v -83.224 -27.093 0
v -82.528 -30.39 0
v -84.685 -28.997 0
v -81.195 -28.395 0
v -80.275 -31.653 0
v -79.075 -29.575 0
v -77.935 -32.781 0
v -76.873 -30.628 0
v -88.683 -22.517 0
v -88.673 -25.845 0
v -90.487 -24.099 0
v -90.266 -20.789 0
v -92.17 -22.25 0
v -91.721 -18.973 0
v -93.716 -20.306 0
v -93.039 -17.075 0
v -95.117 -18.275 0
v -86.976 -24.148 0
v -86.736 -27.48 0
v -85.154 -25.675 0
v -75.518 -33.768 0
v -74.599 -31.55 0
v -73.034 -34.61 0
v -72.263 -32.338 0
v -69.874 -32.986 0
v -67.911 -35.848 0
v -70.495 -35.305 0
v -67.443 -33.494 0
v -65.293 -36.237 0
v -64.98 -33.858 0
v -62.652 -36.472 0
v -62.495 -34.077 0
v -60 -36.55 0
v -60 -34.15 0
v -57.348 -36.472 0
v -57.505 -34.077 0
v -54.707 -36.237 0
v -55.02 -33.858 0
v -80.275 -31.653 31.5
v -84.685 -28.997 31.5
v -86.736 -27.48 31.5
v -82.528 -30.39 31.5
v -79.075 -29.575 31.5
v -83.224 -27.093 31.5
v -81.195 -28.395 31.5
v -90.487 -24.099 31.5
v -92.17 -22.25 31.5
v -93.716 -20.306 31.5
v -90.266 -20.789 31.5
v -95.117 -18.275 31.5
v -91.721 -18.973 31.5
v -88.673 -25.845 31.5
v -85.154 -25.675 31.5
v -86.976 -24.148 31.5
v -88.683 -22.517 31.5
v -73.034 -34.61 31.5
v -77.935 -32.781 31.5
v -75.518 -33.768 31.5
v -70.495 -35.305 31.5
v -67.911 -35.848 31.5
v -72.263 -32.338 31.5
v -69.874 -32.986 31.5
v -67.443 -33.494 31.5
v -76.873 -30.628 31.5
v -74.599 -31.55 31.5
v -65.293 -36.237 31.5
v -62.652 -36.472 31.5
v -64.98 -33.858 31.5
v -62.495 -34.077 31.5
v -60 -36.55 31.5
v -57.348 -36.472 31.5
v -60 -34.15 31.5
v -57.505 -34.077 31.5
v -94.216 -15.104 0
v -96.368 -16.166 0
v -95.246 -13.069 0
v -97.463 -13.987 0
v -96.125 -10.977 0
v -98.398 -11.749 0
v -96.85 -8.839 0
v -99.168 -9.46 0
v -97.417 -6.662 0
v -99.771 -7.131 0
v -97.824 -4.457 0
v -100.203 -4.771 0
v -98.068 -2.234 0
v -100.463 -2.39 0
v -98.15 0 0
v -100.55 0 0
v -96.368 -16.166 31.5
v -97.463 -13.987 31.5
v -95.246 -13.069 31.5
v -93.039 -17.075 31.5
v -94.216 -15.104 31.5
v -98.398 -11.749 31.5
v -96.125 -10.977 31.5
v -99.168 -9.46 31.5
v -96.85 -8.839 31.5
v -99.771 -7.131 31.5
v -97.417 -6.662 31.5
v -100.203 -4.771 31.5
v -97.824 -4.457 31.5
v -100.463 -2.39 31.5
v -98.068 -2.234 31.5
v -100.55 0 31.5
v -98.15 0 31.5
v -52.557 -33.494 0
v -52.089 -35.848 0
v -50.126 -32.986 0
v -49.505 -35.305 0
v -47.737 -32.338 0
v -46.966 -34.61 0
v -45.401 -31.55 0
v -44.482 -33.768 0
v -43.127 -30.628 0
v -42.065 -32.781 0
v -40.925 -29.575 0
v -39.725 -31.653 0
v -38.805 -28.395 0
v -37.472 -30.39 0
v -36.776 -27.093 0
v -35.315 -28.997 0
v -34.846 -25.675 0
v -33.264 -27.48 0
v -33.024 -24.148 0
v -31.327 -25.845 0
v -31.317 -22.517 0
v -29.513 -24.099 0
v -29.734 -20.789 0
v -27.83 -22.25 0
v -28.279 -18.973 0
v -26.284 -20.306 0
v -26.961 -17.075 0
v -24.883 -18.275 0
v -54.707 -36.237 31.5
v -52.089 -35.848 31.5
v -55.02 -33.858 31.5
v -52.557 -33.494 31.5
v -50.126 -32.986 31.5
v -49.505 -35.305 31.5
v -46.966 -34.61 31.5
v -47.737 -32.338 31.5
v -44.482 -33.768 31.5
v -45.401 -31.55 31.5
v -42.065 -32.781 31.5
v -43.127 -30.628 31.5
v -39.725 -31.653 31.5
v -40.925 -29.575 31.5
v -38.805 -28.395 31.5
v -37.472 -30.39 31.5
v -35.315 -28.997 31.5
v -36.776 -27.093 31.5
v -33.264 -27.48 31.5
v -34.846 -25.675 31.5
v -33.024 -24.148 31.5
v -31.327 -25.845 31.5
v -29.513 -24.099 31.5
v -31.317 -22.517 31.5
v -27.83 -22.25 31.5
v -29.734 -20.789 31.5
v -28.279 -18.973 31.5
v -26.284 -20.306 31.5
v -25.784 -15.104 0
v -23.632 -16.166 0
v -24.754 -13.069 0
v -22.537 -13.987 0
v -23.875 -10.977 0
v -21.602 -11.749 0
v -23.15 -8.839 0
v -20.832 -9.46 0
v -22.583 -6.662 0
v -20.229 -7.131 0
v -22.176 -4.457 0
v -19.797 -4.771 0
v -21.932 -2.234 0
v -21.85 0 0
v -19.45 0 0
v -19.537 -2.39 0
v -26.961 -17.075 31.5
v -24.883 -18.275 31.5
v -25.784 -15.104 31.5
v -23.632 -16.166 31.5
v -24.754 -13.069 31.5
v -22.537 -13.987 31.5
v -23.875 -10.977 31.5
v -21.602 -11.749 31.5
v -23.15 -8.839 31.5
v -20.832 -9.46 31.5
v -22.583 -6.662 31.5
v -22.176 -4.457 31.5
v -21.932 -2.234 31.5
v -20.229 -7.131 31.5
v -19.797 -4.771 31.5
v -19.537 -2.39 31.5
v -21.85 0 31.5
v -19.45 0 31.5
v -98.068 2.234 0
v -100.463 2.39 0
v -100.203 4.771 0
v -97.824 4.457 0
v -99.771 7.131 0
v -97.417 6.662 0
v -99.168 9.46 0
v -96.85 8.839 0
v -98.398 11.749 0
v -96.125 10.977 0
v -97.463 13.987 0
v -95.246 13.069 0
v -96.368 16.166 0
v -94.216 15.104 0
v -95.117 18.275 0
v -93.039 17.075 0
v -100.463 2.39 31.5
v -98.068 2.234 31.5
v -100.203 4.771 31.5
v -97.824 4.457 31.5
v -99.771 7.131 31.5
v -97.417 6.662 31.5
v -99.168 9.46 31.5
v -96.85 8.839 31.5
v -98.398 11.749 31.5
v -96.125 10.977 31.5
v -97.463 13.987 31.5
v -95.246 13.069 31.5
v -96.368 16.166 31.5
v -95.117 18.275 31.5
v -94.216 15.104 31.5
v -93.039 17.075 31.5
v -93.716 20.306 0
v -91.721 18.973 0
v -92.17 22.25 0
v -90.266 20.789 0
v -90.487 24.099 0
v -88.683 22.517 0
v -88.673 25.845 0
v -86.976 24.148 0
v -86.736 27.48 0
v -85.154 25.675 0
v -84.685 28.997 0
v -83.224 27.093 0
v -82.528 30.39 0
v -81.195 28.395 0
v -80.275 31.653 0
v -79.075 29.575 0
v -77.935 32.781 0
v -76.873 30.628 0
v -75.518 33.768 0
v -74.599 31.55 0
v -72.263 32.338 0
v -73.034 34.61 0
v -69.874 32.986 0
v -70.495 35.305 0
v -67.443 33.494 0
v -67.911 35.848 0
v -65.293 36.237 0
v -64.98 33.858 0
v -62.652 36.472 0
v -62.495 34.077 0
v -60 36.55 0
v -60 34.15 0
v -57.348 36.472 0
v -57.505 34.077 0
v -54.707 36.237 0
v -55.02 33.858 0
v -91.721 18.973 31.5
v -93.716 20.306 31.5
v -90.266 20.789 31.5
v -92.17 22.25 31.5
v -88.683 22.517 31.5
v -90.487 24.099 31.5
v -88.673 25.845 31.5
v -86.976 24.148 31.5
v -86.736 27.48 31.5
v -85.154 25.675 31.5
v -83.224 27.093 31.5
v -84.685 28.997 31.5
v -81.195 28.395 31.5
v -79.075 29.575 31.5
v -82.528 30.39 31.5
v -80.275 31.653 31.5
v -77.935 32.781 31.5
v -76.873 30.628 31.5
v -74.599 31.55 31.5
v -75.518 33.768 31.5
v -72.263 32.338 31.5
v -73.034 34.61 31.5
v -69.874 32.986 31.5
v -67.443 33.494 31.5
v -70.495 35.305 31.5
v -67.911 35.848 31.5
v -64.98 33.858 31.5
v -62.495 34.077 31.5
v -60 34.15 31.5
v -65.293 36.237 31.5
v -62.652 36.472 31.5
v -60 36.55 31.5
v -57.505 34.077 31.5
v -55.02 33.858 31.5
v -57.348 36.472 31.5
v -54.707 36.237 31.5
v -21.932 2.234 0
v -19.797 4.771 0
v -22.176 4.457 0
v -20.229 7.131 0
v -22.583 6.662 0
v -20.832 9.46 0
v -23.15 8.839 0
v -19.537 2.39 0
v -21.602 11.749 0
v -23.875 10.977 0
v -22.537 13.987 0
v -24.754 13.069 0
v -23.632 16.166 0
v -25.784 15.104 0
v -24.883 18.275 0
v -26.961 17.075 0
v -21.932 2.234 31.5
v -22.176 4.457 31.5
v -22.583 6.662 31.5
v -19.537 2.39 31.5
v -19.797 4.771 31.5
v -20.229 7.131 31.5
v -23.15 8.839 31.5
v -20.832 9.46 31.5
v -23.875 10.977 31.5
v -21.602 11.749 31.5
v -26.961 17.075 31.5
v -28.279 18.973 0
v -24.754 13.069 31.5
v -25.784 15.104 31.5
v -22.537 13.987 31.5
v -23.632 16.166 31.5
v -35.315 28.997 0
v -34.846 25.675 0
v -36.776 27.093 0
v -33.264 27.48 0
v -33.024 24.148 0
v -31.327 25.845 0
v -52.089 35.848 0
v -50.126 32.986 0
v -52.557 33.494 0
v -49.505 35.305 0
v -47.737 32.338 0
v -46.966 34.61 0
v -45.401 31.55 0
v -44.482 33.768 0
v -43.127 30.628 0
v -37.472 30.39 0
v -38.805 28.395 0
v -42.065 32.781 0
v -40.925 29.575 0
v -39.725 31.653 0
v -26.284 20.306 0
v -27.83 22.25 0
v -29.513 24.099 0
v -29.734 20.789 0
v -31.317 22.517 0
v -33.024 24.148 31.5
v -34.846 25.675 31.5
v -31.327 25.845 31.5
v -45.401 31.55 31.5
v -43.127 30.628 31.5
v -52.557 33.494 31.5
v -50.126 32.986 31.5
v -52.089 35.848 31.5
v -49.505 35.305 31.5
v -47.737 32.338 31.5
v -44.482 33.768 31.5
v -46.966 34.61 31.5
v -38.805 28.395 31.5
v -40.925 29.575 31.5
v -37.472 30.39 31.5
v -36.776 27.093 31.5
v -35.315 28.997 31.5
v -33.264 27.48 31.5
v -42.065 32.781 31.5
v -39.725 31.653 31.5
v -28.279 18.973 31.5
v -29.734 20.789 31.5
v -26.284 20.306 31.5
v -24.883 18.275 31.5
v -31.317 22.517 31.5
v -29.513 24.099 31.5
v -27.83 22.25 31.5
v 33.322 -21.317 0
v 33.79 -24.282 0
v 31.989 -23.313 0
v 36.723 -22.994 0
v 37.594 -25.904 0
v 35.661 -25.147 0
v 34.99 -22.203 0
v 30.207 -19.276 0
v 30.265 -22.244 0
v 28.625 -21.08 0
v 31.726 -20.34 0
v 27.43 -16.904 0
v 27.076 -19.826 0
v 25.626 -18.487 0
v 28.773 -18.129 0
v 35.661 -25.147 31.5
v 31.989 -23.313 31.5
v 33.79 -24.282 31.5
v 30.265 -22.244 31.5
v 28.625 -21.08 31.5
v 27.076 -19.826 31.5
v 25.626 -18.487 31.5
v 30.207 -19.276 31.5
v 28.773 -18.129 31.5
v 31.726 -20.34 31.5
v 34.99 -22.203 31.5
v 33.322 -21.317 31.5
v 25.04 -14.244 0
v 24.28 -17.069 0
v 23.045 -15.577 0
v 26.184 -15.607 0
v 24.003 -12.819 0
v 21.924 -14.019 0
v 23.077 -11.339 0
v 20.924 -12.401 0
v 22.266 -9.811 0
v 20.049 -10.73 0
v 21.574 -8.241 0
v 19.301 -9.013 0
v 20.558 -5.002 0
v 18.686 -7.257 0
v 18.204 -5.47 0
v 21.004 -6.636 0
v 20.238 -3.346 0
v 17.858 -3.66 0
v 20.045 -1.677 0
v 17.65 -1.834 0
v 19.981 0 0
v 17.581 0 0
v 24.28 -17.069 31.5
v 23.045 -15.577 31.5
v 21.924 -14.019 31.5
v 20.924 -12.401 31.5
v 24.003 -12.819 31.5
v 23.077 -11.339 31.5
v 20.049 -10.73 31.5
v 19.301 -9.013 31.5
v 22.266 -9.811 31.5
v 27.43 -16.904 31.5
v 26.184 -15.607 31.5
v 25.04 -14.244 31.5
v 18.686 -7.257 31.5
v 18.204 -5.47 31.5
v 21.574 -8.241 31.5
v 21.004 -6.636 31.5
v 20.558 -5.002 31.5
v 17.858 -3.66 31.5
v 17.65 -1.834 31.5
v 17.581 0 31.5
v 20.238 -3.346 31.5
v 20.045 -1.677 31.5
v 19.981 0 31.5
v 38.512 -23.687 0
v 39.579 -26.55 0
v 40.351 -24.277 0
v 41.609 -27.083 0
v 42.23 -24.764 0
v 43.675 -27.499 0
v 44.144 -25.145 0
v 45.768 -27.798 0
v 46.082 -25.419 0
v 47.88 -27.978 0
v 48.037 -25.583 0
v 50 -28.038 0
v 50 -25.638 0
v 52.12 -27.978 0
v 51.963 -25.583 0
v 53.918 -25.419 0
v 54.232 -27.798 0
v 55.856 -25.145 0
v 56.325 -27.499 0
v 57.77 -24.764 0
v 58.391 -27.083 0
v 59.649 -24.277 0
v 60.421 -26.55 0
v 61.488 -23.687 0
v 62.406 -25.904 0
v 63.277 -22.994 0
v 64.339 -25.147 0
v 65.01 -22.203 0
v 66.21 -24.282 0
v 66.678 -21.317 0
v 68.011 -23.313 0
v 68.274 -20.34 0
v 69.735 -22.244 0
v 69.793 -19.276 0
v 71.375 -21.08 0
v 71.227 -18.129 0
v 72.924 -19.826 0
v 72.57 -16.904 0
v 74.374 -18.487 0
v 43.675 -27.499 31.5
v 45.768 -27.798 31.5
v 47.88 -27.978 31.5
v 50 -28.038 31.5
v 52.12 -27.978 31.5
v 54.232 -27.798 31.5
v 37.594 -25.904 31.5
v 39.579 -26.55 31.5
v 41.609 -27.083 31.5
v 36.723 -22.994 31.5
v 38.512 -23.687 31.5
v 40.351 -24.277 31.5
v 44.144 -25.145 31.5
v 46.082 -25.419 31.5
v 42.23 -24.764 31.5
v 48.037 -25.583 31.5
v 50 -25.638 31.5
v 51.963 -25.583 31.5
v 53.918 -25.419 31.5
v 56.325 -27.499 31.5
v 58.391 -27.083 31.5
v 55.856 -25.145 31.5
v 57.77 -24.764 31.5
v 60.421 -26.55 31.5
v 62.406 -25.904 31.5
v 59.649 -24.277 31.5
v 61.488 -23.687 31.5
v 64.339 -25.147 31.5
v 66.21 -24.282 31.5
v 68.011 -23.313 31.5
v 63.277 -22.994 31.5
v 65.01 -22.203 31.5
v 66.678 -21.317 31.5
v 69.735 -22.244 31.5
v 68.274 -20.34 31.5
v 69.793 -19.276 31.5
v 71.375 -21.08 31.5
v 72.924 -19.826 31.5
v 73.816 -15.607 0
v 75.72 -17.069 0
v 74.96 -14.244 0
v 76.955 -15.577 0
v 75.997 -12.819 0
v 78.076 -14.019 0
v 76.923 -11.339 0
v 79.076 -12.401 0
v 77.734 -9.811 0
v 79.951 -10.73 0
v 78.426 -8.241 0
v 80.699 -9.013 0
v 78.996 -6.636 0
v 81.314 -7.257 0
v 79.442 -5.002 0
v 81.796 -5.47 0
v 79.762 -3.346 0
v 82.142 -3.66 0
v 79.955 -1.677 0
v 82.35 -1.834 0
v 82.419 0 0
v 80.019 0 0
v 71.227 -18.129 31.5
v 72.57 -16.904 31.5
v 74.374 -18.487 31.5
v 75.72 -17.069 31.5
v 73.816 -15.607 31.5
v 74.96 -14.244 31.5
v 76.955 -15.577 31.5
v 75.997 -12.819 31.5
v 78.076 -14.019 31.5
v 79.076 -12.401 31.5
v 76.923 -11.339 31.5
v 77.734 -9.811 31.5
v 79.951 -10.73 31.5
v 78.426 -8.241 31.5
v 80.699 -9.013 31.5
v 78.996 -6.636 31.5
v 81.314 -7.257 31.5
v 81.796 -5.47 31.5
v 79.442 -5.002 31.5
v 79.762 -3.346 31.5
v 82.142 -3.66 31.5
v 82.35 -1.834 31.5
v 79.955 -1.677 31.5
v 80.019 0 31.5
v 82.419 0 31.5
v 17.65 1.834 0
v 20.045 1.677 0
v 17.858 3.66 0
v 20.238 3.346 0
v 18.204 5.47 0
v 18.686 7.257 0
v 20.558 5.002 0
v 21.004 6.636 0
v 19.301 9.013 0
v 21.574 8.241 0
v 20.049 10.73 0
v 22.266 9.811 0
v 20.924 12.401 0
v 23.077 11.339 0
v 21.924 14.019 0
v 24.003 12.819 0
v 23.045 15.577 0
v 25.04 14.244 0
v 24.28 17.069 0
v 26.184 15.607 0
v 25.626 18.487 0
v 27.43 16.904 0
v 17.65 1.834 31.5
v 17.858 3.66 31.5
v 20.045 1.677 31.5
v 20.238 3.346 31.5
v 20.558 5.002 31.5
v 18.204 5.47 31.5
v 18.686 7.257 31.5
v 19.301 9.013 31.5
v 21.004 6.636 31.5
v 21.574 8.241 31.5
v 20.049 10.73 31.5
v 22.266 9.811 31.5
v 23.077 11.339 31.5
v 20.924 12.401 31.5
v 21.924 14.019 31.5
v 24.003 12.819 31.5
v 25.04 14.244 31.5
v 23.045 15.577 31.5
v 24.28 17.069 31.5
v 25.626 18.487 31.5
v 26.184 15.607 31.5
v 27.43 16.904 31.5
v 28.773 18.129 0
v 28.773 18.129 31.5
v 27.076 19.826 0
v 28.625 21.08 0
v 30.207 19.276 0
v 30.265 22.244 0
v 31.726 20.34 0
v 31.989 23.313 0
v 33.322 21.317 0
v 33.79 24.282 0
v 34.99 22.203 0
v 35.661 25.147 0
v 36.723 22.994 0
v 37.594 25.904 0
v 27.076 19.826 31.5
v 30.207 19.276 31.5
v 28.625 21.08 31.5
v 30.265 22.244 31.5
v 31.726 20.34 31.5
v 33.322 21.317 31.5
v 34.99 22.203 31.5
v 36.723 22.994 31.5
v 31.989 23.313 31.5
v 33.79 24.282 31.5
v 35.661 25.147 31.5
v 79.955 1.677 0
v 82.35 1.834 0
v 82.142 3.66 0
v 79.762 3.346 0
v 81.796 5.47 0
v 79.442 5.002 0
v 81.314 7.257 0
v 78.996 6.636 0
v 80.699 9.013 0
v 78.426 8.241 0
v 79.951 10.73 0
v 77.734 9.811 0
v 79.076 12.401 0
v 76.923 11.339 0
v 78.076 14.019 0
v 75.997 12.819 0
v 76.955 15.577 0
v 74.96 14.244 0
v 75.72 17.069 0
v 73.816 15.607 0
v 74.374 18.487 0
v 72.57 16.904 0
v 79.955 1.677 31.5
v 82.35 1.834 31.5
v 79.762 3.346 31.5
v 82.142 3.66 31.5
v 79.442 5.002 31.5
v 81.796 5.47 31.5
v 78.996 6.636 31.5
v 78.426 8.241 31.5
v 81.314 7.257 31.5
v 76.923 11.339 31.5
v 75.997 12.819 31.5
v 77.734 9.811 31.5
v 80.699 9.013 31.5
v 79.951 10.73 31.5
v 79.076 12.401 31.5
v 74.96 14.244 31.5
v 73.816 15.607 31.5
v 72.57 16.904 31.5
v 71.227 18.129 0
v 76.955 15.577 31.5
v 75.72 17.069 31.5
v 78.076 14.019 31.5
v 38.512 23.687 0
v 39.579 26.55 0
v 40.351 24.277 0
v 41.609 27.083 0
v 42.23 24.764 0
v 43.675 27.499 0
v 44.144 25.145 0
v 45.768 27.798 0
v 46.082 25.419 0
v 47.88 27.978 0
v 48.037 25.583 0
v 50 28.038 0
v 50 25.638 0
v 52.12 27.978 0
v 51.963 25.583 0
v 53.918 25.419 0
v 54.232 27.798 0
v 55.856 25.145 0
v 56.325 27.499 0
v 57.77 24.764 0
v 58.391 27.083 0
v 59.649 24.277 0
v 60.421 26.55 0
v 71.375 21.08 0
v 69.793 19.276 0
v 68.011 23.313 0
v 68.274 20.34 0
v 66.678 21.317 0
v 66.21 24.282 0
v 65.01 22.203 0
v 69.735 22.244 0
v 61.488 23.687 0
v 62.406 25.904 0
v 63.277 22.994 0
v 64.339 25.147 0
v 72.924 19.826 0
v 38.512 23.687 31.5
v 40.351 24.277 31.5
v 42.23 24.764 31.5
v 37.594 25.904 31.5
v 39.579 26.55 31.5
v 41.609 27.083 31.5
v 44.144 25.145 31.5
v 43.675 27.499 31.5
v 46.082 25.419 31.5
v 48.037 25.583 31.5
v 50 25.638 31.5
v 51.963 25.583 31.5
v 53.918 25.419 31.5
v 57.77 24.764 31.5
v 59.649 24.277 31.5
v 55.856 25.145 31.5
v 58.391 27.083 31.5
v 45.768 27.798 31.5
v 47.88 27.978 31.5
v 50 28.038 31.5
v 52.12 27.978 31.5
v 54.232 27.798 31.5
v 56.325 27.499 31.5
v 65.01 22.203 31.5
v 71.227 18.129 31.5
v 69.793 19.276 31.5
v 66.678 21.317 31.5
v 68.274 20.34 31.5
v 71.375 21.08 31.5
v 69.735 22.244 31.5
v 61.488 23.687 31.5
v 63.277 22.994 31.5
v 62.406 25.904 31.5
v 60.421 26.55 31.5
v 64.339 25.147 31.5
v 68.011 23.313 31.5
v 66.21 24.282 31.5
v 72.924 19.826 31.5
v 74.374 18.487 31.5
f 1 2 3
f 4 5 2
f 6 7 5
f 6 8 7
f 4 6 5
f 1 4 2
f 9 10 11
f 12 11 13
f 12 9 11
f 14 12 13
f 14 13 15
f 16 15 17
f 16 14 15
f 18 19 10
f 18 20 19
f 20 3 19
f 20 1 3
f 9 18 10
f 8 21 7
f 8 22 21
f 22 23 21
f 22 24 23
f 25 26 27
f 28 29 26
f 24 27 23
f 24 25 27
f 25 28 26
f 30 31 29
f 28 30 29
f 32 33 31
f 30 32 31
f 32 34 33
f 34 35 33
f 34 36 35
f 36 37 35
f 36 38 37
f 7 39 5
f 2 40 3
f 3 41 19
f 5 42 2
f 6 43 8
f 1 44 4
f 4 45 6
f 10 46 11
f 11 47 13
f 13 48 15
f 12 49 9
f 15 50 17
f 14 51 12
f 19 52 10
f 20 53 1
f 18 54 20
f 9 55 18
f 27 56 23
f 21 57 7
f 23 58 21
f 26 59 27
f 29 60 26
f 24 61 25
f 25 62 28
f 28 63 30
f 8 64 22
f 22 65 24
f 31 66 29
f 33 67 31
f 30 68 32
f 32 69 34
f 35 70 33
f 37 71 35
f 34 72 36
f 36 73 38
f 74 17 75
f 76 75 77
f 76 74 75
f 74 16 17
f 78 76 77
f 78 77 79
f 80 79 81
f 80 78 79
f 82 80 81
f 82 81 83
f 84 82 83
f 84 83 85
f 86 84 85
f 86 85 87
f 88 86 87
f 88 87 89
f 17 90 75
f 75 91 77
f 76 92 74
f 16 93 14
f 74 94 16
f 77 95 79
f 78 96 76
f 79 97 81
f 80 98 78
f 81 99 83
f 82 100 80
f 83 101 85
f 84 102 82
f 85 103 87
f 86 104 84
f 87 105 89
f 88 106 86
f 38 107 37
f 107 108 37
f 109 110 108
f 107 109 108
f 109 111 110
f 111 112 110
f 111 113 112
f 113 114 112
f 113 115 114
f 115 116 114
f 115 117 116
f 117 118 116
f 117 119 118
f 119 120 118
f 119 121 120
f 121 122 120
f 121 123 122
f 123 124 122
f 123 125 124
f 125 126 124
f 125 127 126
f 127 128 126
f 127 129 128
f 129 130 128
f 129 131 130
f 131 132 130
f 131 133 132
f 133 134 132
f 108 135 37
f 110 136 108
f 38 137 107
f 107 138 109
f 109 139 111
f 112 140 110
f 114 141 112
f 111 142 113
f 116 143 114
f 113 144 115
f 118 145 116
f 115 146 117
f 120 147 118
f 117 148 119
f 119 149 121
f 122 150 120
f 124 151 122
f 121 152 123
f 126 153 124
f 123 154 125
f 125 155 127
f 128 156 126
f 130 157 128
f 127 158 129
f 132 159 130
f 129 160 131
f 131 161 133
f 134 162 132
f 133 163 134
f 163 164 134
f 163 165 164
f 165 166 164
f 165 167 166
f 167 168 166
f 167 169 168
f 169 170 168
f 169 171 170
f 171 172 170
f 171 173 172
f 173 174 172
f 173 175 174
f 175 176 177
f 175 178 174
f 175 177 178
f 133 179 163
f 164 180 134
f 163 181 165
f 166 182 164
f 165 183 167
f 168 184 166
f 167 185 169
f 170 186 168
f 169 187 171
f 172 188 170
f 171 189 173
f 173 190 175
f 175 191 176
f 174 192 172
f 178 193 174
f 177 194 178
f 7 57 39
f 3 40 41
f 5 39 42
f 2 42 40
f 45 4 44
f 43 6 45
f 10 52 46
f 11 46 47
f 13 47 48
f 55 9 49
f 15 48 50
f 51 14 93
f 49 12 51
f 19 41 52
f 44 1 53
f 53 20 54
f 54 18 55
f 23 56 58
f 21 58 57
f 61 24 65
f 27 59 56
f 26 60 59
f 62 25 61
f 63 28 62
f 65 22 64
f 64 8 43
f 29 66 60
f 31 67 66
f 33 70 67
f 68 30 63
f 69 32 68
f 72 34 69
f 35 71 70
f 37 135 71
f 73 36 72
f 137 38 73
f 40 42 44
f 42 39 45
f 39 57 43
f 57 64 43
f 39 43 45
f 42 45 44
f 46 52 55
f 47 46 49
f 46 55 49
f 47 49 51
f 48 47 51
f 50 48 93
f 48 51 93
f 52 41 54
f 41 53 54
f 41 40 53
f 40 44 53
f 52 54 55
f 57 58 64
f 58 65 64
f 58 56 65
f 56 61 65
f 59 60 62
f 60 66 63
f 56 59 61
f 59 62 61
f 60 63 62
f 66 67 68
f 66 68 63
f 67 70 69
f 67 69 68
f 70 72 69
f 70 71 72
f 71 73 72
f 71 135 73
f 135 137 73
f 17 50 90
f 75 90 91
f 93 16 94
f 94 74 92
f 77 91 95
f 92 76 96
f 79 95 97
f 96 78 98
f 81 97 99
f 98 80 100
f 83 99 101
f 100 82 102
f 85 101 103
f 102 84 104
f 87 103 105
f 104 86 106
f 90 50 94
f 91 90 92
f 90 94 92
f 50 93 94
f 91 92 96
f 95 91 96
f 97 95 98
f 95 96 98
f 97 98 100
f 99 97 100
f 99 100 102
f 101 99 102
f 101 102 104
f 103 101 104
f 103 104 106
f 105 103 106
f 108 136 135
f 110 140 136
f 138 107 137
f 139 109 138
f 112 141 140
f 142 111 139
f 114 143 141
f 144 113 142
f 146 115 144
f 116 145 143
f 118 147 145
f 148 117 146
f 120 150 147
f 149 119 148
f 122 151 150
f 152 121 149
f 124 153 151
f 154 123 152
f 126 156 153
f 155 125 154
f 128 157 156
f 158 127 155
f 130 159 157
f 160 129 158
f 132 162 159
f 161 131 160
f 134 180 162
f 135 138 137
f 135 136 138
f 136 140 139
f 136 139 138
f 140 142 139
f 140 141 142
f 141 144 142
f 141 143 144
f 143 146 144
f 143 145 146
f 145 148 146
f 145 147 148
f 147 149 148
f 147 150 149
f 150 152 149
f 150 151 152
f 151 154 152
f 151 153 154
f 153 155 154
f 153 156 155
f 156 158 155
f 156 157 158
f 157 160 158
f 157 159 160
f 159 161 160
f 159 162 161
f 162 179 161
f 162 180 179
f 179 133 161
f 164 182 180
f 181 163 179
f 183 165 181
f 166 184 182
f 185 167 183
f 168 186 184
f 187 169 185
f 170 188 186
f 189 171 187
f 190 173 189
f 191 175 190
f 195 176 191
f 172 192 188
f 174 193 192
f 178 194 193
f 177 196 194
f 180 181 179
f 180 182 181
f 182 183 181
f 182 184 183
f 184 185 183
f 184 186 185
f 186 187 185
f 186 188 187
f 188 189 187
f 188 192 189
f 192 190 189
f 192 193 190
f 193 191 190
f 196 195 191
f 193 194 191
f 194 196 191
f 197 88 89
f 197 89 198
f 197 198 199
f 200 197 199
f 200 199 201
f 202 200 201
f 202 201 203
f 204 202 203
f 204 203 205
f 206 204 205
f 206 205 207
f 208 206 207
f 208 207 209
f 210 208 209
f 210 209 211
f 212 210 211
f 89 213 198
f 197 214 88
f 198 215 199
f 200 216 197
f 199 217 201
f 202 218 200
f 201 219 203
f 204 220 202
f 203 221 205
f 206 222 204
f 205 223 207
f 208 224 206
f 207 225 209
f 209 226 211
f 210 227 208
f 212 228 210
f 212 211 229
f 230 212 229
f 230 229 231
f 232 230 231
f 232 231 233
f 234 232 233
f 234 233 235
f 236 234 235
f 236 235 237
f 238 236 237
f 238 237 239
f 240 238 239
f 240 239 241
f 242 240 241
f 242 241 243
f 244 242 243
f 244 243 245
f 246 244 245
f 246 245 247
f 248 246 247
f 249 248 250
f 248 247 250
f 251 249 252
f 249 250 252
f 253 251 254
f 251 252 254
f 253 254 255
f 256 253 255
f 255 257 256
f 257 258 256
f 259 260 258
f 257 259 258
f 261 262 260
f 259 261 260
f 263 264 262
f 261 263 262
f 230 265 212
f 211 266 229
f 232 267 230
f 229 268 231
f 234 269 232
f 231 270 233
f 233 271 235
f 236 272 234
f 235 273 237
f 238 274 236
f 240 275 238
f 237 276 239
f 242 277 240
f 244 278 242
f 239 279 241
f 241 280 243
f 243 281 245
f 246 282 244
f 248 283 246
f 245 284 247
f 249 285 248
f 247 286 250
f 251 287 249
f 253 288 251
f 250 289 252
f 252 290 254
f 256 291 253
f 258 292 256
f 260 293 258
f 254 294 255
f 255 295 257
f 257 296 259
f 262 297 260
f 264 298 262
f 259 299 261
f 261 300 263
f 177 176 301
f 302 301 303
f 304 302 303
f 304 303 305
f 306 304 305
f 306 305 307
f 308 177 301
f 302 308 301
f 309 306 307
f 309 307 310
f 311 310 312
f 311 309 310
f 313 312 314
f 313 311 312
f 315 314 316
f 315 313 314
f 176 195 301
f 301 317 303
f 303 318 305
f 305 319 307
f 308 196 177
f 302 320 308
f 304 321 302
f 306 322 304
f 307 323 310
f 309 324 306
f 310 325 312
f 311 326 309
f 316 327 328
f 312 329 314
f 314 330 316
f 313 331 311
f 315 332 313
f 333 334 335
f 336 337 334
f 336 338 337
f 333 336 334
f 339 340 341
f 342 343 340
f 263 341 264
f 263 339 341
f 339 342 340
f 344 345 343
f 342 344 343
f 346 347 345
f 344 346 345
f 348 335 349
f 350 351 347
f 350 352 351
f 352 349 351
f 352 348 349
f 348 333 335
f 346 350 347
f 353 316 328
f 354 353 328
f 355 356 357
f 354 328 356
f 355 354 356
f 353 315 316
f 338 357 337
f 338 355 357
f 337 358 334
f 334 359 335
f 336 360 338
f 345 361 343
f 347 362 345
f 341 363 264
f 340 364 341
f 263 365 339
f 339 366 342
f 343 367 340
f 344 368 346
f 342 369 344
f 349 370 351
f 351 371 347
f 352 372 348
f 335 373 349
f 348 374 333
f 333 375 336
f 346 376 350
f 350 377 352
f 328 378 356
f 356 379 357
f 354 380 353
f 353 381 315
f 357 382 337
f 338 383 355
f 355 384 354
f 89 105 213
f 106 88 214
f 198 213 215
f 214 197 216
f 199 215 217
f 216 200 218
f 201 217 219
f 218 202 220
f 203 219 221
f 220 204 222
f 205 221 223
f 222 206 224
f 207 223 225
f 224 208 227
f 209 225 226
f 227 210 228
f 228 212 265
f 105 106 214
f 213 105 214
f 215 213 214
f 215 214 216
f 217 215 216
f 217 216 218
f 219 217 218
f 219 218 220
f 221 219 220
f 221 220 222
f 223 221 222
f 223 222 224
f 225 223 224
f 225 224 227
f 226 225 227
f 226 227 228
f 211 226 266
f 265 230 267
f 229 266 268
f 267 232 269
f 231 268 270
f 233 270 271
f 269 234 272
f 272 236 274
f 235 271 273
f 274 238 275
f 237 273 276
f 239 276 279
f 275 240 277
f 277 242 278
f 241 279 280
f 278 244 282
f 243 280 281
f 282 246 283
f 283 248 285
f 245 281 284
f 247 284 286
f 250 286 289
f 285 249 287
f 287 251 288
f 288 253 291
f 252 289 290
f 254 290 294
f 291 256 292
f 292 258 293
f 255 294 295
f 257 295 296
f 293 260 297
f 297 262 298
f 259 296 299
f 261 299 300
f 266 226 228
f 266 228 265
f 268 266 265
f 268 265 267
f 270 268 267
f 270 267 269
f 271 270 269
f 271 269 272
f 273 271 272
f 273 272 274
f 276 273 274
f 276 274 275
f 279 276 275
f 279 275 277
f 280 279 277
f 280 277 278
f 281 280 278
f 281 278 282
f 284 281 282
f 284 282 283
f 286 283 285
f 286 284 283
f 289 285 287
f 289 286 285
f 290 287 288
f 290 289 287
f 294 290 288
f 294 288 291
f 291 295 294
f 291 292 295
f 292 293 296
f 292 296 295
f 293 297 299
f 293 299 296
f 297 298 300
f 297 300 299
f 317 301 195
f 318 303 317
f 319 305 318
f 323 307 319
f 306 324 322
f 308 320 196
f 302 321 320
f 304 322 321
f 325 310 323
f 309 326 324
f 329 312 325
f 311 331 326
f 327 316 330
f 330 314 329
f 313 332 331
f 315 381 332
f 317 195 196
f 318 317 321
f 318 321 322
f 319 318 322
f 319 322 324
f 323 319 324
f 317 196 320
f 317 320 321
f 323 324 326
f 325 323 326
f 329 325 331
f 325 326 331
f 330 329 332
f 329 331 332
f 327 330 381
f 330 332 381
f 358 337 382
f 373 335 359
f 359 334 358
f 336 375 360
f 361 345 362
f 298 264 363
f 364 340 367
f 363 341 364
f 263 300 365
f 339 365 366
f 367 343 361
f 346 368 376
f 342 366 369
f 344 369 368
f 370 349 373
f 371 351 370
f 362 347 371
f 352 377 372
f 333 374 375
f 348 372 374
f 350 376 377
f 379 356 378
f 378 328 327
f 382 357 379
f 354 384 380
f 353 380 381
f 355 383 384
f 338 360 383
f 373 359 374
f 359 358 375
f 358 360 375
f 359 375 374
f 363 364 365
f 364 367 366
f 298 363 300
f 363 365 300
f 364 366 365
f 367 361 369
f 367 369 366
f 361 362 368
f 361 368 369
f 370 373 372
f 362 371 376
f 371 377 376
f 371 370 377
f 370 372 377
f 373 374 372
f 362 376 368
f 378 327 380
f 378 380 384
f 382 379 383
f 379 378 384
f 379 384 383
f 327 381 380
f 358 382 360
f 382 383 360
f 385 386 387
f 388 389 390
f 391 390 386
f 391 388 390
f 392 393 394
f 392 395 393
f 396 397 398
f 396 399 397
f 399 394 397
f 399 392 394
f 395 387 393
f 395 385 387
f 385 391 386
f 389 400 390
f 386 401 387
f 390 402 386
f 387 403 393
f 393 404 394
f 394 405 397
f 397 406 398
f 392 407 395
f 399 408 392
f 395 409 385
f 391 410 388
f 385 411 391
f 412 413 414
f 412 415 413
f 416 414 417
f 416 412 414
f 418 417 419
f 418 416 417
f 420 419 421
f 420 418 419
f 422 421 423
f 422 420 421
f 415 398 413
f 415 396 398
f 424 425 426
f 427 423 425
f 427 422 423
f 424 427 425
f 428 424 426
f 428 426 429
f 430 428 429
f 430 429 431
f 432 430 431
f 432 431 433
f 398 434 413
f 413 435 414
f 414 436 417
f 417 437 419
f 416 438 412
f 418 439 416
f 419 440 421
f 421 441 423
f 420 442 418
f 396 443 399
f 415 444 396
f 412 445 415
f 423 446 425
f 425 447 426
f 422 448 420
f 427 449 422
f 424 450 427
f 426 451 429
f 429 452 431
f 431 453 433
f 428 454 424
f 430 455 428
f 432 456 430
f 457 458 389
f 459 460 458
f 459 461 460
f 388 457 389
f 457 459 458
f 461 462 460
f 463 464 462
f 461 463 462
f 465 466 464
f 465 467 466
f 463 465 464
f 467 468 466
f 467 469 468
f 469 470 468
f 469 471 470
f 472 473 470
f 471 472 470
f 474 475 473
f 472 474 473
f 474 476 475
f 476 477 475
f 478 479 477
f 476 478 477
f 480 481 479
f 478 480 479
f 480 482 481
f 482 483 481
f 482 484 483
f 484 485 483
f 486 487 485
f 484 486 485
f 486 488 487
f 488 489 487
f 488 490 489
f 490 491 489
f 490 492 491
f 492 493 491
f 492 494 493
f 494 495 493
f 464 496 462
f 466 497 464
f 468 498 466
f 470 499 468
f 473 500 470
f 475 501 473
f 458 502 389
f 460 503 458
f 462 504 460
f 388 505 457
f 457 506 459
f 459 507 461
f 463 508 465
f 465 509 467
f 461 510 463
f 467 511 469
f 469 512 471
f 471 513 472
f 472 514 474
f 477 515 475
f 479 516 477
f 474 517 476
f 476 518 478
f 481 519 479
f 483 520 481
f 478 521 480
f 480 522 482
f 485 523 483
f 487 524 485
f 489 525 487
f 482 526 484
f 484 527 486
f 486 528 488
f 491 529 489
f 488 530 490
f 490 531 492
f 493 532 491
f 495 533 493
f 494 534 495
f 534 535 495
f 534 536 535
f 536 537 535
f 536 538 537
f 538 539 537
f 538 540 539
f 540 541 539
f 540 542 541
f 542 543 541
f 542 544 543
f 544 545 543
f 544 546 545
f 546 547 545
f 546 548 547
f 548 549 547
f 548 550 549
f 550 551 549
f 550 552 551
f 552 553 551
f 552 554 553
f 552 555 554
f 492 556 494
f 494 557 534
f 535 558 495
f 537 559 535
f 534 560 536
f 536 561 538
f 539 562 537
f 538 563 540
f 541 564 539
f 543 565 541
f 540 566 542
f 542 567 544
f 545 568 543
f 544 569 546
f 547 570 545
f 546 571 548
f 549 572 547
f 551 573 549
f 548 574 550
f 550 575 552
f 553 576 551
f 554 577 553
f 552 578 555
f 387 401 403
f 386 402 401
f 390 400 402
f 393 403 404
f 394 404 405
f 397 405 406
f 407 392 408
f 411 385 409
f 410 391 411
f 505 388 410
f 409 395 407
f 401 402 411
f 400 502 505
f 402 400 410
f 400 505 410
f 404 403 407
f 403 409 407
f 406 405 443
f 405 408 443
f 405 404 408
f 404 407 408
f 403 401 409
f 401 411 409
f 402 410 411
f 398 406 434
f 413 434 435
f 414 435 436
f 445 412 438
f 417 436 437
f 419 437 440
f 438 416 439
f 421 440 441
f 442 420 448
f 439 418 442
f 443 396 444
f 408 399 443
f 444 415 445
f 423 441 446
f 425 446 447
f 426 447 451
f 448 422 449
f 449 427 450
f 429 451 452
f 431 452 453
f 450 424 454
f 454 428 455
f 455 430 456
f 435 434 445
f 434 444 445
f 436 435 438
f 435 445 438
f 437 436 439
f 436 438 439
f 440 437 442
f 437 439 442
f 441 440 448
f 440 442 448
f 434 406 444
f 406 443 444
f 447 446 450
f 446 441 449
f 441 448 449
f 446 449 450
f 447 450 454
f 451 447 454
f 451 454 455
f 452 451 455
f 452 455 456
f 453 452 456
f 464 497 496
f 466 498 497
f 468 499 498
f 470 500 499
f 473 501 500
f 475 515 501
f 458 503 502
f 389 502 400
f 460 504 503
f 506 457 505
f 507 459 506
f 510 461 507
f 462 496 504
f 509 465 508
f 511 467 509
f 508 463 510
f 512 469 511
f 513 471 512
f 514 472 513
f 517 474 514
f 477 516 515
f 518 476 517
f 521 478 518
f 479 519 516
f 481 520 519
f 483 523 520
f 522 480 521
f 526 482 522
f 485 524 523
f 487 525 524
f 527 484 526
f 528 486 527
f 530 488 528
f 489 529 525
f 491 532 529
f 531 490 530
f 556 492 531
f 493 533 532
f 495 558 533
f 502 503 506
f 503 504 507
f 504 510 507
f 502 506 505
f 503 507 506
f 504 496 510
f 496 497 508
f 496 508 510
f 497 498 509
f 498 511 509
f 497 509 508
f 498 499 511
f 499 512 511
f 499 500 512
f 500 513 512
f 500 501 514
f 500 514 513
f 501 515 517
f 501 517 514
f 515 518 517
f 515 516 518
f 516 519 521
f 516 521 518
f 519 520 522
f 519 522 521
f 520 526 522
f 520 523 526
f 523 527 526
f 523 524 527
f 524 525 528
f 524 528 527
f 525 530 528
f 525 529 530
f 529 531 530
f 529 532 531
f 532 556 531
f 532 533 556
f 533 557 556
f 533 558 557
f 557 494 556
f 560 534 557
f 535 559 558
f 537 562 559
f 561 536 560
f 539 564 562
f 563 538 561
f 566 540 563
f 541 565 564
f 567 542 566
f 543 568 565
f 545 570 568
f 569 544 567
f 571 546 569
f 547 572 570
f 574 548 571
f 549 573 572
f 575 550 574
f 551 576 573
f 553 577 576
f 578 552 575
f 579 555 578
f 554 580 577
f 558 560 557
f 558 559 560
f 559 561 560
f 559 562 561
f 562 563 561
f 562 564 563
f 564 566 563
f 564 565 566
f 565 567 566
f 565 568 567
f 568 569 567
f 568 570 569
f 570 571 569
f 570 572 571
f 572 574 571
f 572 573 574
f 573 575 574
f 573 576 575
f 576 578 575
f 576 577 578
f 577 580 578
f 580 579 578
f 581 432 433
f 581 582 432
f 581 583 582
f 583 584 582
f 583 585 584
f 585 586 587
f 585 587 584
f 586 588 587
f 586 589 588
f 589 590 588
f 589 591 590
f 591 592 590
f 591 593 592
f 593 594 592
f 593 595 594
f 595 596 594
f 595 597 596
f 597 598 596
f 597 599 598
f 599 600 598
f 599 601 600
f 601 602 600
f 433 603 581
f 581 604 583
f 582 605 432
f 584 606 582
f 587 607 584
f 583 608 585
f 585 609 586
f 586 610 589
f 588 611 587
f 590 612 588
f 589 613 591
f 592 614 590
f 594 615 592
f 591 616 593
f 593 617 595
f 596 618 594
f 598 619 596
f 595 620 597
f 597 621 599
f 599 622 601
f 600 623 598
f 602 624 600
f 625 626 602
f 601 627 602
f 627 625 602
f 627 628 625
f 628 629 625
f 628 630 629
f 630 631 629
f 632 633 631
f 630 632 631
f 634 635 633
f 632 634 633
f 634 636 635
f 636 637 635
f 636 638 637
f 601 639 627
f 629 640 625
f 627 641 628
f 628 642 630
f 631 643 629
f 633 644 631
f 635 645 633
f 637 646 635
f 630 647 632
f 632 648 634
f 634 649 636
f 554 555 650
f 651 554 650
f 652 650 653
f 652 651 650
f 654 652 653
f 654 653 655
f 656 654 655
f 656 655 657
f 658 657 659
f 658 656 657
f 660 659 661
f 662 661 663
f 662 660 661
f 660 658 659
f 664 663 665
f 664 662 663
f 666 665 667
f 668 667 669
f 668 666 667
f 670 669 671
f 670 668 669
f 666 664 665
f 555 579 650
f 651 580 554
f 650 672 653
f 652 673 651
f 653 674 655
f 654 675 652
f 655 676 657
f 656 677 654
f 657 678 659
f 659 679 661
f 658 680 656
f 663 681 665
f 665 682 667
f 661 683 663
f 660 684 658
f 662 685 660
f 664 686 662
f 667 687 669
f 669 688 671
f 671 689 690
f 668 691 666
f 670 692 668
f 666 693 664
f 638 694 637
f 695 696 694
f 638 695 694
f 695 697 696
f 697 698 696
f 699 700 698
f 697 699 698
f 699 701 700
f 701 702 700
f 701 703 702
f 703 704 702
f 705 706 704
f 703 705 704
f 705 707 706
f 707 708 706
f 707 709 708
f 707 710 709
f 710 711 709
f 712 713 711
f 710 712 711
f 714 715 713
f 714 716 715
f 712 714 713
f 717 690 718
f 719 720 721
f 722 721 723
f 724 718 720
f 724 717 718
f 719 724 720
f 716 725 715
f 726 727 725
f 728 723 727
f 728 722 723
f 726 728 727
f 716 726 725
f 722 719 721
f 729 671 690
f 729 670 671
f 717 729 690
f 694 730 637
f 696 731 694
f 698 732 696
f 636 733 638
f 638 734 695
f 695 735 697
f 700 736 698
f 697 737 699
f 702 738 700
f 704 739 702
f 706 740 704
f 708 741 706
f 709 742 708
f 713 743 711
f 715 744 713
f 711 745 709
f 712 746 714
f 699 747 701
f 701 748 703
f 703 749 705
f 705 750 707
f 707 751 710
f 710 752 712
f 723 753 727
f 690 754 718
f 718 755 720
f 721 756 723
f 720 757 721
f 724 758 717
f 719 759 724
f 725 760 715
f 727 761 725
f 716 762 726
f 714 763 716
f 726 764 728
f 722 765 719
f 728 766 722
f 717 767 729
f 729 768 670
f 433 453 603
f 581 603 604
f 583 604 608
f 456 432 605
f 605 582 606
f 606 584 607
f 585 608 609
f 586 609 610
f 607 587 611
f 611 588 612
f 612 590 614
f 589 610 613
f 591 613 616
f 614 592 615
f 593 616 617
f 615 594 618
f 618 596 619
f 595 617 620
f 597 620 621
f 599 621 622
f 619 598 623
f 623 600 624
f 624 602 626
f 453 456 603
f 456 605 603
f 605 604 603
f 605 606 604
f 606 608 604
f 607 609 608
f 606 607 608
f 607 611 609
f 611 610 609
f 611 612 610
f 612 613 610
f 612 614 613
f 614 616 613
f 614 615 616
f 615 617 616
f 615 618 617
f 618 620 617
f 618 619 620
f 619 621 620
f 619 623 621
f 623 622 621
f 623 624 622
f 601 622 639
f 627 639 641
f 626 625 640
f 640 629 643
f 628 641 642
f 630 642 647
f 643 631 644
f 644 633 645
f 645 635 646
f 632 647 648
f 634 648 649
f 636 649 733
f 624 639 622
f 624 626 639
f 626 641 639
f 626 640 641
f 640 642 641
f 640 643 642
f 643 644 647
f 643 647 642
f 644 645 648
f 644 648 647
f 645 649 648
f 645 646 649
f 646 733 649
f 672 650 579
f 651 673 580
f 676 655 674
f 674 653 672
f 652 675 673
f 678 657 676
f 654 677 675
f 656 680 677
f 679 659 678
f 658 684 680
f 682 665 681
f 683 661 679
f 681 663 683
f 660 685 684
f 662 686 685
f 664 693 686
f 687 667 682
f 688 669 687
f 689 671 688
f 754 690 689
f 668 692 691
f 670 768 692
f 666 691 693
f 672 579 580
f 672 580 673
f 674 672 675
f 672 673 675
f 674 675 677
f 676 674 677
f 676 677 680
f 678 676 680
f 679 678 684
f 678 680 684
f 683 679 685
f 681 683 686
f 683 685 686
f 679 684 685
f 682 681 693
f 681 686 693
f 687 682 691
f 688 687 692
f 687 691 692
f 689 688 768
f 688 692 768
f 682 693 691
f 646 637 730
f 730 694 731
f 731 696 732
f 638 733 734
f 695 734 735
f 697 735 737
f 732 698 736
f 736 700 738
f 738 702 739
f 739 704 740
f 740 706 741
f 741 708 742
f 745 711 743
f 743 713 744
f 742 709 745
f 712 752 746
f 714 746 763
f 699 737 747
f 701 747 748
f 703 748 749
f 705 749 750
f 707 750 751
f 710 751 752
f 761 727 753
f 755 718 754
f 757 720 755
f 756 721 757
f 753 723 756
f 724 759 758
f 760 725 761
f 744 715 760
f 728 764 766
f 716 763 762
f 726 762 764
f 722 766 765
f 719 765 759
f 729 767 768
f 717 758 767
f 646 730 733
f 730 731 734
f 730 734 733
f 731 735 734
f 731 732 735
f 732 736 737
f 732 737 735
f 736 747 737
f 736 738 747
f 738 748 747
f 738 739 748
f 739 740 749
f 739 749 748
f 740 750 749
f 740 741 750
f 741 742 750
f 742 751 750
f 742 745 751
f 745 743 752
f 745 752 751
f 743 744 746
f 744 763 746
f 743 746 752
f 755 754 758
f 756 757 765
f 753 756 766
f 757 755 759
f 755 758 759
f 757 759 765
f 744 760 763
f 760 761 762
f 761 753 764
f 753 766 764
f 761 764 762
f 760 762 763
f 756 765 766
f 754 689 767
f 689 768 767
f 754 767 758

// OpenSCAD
// file: params.scad
// Buddy arm: all dimensions in mm. Change values here, not in the part files.
// Frame of every joint: pivot axis = Y, limbs run along Z, X = front/back.

$fn = 96;

// --- Human proportions (average adult) -------------------------------------
upper_arm_len = 300;  // shoulder pivot -> elbow pivot
forearm_len   = 260;  // elbow pivot -> wrist face

// Outer tube profiles: [z, half depth X (front/back), half width Y (side/side)].
// Upper arm: z measured up from the elbow pivot. Forearm: z down from the elbow pivot (negative).
upper_arm_profile = [[62, 34, 30], [150, 45, 41], [240, 44, 40]];
forearm_profile   = [[-255, 30, 21], [-150, 35, 31], [-60, 41, 36]];

wall = 2.4;  // tube wall (= 6 perimeters at 0.4 mm)

// --- Print splits (P2S bed: 256 x 256 x 256) --------------------------------
ua_split  = 150;   // upper arm cut, z from elbow pivot
fa_split  = -140;  // forearm cut, z from elbow pivot
sock_len  = 16;    // coupler depth per side
sock_wall = 2.0;   // min tube wall around the coupler
neck      = 2;     // ledge the coupler stops against
coupler_fit  = 0.2;
coupler_wall = 2.4;

// --- Servo (standard size, 25T spline, e.g. DS3218 / DS3235) ----------------
// ⚠️ Typical values. Measure your servos and correct these before printing.
servo_body       = [40.5, 20.2];  // length (along the limb), width
servo_below      = 27.0;          // bottom face -> underside of mounting flange
servo_flange_len = 54.0;
servo_hole_pitch = [49.5, 10.0];  // flange holes: along length, across width
servo_shaft_off  = 10.2;          // shaft axis -> near end of body
servo_horn_face  = 18.0;          // flange underside -> outer face of the mounted disc horn
horn_pcd         = 18.0;          // 4x M3 holes in the aluminium disc horn
servo_screw_d    = 2.5;           // pilot hole for M3 self-tapping screws
fit = 0.3;                        // clearance per side around the servo body

// --- Bearing & axle (idler side of every joint) ------------------------------
bearing   = [8, 22, 7];  // 608 skate bearing: id, od, width
press     = 0.1;         // bearing seat oversize, tune with a test print
bolt_d    = 8.4;         // M8 x 20 bolt
nut_af    = 13;          // M8 nut across flats
nut_t     = 6.5;
boss_d    = 11;          // presses only on the bearing's inner race (od ~12)
lip_hole_d = 17.5;       // outer lip: holds the outer race, clears 2x M8 washers (od 16)
idler_lip = 1.5;

// --- Joint geometry -----------------------------------------------------------
knuckle_r  = 26;   // round end of the servo housing
stem_half  = 14;   // knuckle half depth above the pivot (narrow = more elbow range)
knuckle_len = 42;  // straight knuckle before the tube starts (servo slides in below this)
joint_gap  = 1.0;  // knuckle face <-> idler cheek
bearing_recess = 1.0;
horn_gap   = 0.2;
horn_cheek_t = 6;
cheek_r    = knuckle_r;
fork_half_x = 28;
fork_bridge_z = knuckle_r + 3;
fork_bridge_t = 6;
cap_small  = 8;    // void tapers to this half size under a fork (45° roof, no supports)

pocket_floor_gap = 1.0;
inner_wall = 1.6;  // between servo pocket and nut slot
outer_wall = 2.0;  // between nut slot and idler face
nut_slot_t = nut_t + 0.3;
channel_h  = 14;   // cable channel depth (Y), stays clear of the flange screws

// --- Shoulder mount -------------------------------------------------------------
mount_stem = 50;            // pivot -> underside of the mounting plate
plate      = [90, 80, 6];   // X, Y, thickness
plate_hole_d = 4.5;         // M4
plate_holes  = [70, 56];    // hole pattern X, Y

// --- Wrist plate (hand interface, placeholder until 3.1) ----------------------
wrist_t      = 5;
wrist_hole_d = 20;          // tendons / cables
wrist_screws = [32, 20];    // 4x M3 pattern X, Y

cable_hole_z = 215;  // elbow servo cable exits the upper arm here (back side)
cable_hole_d = 12;

// --- Derived (don't edit) -------------------------------------------------------
knuckle_w   = servo_below + pocket_floor_gap + inner_wall + nut_slot_t + outer_wall;
y_flange    = knuckle_w / 2;       // servo flange seat (+Y face of the knuckle)
y_back      = -knuckle_w / 2;      // idler face
y_horn      = y_flange + servo_horn_face;
pocket_y0   = y_flange - servo_below - pocket_floor_gap;
boss_h      = joint_gap + bearing_recess;
idler_cheek_t = bearing_recess + bearing[2] + idler_lip;
idler_in    = y_back - joint_gap;
fork_y0     = idler_in - idler_cheek_t;
horn_cheek_y = y_horn + horn_gap;
fork_y1     = horn_cheek_y + horn_cheek_t;
yc          = (fork_y0 + fork_y1) / 2;  // limb centre line (Y)
body_c      = servo_body[0] / 2 - servo_shaft_off;  // servo body centre, z from shaft
// main file
// Coupler rings that join the arm halves (glue or M3 screws). Print standing.
include <lib.scad>

translate([-60, 0, 0]) coupler(upper_arm_profile, ua_split);
translate([50, 0, 0]) coupler(forearm_profile, fa_split);
